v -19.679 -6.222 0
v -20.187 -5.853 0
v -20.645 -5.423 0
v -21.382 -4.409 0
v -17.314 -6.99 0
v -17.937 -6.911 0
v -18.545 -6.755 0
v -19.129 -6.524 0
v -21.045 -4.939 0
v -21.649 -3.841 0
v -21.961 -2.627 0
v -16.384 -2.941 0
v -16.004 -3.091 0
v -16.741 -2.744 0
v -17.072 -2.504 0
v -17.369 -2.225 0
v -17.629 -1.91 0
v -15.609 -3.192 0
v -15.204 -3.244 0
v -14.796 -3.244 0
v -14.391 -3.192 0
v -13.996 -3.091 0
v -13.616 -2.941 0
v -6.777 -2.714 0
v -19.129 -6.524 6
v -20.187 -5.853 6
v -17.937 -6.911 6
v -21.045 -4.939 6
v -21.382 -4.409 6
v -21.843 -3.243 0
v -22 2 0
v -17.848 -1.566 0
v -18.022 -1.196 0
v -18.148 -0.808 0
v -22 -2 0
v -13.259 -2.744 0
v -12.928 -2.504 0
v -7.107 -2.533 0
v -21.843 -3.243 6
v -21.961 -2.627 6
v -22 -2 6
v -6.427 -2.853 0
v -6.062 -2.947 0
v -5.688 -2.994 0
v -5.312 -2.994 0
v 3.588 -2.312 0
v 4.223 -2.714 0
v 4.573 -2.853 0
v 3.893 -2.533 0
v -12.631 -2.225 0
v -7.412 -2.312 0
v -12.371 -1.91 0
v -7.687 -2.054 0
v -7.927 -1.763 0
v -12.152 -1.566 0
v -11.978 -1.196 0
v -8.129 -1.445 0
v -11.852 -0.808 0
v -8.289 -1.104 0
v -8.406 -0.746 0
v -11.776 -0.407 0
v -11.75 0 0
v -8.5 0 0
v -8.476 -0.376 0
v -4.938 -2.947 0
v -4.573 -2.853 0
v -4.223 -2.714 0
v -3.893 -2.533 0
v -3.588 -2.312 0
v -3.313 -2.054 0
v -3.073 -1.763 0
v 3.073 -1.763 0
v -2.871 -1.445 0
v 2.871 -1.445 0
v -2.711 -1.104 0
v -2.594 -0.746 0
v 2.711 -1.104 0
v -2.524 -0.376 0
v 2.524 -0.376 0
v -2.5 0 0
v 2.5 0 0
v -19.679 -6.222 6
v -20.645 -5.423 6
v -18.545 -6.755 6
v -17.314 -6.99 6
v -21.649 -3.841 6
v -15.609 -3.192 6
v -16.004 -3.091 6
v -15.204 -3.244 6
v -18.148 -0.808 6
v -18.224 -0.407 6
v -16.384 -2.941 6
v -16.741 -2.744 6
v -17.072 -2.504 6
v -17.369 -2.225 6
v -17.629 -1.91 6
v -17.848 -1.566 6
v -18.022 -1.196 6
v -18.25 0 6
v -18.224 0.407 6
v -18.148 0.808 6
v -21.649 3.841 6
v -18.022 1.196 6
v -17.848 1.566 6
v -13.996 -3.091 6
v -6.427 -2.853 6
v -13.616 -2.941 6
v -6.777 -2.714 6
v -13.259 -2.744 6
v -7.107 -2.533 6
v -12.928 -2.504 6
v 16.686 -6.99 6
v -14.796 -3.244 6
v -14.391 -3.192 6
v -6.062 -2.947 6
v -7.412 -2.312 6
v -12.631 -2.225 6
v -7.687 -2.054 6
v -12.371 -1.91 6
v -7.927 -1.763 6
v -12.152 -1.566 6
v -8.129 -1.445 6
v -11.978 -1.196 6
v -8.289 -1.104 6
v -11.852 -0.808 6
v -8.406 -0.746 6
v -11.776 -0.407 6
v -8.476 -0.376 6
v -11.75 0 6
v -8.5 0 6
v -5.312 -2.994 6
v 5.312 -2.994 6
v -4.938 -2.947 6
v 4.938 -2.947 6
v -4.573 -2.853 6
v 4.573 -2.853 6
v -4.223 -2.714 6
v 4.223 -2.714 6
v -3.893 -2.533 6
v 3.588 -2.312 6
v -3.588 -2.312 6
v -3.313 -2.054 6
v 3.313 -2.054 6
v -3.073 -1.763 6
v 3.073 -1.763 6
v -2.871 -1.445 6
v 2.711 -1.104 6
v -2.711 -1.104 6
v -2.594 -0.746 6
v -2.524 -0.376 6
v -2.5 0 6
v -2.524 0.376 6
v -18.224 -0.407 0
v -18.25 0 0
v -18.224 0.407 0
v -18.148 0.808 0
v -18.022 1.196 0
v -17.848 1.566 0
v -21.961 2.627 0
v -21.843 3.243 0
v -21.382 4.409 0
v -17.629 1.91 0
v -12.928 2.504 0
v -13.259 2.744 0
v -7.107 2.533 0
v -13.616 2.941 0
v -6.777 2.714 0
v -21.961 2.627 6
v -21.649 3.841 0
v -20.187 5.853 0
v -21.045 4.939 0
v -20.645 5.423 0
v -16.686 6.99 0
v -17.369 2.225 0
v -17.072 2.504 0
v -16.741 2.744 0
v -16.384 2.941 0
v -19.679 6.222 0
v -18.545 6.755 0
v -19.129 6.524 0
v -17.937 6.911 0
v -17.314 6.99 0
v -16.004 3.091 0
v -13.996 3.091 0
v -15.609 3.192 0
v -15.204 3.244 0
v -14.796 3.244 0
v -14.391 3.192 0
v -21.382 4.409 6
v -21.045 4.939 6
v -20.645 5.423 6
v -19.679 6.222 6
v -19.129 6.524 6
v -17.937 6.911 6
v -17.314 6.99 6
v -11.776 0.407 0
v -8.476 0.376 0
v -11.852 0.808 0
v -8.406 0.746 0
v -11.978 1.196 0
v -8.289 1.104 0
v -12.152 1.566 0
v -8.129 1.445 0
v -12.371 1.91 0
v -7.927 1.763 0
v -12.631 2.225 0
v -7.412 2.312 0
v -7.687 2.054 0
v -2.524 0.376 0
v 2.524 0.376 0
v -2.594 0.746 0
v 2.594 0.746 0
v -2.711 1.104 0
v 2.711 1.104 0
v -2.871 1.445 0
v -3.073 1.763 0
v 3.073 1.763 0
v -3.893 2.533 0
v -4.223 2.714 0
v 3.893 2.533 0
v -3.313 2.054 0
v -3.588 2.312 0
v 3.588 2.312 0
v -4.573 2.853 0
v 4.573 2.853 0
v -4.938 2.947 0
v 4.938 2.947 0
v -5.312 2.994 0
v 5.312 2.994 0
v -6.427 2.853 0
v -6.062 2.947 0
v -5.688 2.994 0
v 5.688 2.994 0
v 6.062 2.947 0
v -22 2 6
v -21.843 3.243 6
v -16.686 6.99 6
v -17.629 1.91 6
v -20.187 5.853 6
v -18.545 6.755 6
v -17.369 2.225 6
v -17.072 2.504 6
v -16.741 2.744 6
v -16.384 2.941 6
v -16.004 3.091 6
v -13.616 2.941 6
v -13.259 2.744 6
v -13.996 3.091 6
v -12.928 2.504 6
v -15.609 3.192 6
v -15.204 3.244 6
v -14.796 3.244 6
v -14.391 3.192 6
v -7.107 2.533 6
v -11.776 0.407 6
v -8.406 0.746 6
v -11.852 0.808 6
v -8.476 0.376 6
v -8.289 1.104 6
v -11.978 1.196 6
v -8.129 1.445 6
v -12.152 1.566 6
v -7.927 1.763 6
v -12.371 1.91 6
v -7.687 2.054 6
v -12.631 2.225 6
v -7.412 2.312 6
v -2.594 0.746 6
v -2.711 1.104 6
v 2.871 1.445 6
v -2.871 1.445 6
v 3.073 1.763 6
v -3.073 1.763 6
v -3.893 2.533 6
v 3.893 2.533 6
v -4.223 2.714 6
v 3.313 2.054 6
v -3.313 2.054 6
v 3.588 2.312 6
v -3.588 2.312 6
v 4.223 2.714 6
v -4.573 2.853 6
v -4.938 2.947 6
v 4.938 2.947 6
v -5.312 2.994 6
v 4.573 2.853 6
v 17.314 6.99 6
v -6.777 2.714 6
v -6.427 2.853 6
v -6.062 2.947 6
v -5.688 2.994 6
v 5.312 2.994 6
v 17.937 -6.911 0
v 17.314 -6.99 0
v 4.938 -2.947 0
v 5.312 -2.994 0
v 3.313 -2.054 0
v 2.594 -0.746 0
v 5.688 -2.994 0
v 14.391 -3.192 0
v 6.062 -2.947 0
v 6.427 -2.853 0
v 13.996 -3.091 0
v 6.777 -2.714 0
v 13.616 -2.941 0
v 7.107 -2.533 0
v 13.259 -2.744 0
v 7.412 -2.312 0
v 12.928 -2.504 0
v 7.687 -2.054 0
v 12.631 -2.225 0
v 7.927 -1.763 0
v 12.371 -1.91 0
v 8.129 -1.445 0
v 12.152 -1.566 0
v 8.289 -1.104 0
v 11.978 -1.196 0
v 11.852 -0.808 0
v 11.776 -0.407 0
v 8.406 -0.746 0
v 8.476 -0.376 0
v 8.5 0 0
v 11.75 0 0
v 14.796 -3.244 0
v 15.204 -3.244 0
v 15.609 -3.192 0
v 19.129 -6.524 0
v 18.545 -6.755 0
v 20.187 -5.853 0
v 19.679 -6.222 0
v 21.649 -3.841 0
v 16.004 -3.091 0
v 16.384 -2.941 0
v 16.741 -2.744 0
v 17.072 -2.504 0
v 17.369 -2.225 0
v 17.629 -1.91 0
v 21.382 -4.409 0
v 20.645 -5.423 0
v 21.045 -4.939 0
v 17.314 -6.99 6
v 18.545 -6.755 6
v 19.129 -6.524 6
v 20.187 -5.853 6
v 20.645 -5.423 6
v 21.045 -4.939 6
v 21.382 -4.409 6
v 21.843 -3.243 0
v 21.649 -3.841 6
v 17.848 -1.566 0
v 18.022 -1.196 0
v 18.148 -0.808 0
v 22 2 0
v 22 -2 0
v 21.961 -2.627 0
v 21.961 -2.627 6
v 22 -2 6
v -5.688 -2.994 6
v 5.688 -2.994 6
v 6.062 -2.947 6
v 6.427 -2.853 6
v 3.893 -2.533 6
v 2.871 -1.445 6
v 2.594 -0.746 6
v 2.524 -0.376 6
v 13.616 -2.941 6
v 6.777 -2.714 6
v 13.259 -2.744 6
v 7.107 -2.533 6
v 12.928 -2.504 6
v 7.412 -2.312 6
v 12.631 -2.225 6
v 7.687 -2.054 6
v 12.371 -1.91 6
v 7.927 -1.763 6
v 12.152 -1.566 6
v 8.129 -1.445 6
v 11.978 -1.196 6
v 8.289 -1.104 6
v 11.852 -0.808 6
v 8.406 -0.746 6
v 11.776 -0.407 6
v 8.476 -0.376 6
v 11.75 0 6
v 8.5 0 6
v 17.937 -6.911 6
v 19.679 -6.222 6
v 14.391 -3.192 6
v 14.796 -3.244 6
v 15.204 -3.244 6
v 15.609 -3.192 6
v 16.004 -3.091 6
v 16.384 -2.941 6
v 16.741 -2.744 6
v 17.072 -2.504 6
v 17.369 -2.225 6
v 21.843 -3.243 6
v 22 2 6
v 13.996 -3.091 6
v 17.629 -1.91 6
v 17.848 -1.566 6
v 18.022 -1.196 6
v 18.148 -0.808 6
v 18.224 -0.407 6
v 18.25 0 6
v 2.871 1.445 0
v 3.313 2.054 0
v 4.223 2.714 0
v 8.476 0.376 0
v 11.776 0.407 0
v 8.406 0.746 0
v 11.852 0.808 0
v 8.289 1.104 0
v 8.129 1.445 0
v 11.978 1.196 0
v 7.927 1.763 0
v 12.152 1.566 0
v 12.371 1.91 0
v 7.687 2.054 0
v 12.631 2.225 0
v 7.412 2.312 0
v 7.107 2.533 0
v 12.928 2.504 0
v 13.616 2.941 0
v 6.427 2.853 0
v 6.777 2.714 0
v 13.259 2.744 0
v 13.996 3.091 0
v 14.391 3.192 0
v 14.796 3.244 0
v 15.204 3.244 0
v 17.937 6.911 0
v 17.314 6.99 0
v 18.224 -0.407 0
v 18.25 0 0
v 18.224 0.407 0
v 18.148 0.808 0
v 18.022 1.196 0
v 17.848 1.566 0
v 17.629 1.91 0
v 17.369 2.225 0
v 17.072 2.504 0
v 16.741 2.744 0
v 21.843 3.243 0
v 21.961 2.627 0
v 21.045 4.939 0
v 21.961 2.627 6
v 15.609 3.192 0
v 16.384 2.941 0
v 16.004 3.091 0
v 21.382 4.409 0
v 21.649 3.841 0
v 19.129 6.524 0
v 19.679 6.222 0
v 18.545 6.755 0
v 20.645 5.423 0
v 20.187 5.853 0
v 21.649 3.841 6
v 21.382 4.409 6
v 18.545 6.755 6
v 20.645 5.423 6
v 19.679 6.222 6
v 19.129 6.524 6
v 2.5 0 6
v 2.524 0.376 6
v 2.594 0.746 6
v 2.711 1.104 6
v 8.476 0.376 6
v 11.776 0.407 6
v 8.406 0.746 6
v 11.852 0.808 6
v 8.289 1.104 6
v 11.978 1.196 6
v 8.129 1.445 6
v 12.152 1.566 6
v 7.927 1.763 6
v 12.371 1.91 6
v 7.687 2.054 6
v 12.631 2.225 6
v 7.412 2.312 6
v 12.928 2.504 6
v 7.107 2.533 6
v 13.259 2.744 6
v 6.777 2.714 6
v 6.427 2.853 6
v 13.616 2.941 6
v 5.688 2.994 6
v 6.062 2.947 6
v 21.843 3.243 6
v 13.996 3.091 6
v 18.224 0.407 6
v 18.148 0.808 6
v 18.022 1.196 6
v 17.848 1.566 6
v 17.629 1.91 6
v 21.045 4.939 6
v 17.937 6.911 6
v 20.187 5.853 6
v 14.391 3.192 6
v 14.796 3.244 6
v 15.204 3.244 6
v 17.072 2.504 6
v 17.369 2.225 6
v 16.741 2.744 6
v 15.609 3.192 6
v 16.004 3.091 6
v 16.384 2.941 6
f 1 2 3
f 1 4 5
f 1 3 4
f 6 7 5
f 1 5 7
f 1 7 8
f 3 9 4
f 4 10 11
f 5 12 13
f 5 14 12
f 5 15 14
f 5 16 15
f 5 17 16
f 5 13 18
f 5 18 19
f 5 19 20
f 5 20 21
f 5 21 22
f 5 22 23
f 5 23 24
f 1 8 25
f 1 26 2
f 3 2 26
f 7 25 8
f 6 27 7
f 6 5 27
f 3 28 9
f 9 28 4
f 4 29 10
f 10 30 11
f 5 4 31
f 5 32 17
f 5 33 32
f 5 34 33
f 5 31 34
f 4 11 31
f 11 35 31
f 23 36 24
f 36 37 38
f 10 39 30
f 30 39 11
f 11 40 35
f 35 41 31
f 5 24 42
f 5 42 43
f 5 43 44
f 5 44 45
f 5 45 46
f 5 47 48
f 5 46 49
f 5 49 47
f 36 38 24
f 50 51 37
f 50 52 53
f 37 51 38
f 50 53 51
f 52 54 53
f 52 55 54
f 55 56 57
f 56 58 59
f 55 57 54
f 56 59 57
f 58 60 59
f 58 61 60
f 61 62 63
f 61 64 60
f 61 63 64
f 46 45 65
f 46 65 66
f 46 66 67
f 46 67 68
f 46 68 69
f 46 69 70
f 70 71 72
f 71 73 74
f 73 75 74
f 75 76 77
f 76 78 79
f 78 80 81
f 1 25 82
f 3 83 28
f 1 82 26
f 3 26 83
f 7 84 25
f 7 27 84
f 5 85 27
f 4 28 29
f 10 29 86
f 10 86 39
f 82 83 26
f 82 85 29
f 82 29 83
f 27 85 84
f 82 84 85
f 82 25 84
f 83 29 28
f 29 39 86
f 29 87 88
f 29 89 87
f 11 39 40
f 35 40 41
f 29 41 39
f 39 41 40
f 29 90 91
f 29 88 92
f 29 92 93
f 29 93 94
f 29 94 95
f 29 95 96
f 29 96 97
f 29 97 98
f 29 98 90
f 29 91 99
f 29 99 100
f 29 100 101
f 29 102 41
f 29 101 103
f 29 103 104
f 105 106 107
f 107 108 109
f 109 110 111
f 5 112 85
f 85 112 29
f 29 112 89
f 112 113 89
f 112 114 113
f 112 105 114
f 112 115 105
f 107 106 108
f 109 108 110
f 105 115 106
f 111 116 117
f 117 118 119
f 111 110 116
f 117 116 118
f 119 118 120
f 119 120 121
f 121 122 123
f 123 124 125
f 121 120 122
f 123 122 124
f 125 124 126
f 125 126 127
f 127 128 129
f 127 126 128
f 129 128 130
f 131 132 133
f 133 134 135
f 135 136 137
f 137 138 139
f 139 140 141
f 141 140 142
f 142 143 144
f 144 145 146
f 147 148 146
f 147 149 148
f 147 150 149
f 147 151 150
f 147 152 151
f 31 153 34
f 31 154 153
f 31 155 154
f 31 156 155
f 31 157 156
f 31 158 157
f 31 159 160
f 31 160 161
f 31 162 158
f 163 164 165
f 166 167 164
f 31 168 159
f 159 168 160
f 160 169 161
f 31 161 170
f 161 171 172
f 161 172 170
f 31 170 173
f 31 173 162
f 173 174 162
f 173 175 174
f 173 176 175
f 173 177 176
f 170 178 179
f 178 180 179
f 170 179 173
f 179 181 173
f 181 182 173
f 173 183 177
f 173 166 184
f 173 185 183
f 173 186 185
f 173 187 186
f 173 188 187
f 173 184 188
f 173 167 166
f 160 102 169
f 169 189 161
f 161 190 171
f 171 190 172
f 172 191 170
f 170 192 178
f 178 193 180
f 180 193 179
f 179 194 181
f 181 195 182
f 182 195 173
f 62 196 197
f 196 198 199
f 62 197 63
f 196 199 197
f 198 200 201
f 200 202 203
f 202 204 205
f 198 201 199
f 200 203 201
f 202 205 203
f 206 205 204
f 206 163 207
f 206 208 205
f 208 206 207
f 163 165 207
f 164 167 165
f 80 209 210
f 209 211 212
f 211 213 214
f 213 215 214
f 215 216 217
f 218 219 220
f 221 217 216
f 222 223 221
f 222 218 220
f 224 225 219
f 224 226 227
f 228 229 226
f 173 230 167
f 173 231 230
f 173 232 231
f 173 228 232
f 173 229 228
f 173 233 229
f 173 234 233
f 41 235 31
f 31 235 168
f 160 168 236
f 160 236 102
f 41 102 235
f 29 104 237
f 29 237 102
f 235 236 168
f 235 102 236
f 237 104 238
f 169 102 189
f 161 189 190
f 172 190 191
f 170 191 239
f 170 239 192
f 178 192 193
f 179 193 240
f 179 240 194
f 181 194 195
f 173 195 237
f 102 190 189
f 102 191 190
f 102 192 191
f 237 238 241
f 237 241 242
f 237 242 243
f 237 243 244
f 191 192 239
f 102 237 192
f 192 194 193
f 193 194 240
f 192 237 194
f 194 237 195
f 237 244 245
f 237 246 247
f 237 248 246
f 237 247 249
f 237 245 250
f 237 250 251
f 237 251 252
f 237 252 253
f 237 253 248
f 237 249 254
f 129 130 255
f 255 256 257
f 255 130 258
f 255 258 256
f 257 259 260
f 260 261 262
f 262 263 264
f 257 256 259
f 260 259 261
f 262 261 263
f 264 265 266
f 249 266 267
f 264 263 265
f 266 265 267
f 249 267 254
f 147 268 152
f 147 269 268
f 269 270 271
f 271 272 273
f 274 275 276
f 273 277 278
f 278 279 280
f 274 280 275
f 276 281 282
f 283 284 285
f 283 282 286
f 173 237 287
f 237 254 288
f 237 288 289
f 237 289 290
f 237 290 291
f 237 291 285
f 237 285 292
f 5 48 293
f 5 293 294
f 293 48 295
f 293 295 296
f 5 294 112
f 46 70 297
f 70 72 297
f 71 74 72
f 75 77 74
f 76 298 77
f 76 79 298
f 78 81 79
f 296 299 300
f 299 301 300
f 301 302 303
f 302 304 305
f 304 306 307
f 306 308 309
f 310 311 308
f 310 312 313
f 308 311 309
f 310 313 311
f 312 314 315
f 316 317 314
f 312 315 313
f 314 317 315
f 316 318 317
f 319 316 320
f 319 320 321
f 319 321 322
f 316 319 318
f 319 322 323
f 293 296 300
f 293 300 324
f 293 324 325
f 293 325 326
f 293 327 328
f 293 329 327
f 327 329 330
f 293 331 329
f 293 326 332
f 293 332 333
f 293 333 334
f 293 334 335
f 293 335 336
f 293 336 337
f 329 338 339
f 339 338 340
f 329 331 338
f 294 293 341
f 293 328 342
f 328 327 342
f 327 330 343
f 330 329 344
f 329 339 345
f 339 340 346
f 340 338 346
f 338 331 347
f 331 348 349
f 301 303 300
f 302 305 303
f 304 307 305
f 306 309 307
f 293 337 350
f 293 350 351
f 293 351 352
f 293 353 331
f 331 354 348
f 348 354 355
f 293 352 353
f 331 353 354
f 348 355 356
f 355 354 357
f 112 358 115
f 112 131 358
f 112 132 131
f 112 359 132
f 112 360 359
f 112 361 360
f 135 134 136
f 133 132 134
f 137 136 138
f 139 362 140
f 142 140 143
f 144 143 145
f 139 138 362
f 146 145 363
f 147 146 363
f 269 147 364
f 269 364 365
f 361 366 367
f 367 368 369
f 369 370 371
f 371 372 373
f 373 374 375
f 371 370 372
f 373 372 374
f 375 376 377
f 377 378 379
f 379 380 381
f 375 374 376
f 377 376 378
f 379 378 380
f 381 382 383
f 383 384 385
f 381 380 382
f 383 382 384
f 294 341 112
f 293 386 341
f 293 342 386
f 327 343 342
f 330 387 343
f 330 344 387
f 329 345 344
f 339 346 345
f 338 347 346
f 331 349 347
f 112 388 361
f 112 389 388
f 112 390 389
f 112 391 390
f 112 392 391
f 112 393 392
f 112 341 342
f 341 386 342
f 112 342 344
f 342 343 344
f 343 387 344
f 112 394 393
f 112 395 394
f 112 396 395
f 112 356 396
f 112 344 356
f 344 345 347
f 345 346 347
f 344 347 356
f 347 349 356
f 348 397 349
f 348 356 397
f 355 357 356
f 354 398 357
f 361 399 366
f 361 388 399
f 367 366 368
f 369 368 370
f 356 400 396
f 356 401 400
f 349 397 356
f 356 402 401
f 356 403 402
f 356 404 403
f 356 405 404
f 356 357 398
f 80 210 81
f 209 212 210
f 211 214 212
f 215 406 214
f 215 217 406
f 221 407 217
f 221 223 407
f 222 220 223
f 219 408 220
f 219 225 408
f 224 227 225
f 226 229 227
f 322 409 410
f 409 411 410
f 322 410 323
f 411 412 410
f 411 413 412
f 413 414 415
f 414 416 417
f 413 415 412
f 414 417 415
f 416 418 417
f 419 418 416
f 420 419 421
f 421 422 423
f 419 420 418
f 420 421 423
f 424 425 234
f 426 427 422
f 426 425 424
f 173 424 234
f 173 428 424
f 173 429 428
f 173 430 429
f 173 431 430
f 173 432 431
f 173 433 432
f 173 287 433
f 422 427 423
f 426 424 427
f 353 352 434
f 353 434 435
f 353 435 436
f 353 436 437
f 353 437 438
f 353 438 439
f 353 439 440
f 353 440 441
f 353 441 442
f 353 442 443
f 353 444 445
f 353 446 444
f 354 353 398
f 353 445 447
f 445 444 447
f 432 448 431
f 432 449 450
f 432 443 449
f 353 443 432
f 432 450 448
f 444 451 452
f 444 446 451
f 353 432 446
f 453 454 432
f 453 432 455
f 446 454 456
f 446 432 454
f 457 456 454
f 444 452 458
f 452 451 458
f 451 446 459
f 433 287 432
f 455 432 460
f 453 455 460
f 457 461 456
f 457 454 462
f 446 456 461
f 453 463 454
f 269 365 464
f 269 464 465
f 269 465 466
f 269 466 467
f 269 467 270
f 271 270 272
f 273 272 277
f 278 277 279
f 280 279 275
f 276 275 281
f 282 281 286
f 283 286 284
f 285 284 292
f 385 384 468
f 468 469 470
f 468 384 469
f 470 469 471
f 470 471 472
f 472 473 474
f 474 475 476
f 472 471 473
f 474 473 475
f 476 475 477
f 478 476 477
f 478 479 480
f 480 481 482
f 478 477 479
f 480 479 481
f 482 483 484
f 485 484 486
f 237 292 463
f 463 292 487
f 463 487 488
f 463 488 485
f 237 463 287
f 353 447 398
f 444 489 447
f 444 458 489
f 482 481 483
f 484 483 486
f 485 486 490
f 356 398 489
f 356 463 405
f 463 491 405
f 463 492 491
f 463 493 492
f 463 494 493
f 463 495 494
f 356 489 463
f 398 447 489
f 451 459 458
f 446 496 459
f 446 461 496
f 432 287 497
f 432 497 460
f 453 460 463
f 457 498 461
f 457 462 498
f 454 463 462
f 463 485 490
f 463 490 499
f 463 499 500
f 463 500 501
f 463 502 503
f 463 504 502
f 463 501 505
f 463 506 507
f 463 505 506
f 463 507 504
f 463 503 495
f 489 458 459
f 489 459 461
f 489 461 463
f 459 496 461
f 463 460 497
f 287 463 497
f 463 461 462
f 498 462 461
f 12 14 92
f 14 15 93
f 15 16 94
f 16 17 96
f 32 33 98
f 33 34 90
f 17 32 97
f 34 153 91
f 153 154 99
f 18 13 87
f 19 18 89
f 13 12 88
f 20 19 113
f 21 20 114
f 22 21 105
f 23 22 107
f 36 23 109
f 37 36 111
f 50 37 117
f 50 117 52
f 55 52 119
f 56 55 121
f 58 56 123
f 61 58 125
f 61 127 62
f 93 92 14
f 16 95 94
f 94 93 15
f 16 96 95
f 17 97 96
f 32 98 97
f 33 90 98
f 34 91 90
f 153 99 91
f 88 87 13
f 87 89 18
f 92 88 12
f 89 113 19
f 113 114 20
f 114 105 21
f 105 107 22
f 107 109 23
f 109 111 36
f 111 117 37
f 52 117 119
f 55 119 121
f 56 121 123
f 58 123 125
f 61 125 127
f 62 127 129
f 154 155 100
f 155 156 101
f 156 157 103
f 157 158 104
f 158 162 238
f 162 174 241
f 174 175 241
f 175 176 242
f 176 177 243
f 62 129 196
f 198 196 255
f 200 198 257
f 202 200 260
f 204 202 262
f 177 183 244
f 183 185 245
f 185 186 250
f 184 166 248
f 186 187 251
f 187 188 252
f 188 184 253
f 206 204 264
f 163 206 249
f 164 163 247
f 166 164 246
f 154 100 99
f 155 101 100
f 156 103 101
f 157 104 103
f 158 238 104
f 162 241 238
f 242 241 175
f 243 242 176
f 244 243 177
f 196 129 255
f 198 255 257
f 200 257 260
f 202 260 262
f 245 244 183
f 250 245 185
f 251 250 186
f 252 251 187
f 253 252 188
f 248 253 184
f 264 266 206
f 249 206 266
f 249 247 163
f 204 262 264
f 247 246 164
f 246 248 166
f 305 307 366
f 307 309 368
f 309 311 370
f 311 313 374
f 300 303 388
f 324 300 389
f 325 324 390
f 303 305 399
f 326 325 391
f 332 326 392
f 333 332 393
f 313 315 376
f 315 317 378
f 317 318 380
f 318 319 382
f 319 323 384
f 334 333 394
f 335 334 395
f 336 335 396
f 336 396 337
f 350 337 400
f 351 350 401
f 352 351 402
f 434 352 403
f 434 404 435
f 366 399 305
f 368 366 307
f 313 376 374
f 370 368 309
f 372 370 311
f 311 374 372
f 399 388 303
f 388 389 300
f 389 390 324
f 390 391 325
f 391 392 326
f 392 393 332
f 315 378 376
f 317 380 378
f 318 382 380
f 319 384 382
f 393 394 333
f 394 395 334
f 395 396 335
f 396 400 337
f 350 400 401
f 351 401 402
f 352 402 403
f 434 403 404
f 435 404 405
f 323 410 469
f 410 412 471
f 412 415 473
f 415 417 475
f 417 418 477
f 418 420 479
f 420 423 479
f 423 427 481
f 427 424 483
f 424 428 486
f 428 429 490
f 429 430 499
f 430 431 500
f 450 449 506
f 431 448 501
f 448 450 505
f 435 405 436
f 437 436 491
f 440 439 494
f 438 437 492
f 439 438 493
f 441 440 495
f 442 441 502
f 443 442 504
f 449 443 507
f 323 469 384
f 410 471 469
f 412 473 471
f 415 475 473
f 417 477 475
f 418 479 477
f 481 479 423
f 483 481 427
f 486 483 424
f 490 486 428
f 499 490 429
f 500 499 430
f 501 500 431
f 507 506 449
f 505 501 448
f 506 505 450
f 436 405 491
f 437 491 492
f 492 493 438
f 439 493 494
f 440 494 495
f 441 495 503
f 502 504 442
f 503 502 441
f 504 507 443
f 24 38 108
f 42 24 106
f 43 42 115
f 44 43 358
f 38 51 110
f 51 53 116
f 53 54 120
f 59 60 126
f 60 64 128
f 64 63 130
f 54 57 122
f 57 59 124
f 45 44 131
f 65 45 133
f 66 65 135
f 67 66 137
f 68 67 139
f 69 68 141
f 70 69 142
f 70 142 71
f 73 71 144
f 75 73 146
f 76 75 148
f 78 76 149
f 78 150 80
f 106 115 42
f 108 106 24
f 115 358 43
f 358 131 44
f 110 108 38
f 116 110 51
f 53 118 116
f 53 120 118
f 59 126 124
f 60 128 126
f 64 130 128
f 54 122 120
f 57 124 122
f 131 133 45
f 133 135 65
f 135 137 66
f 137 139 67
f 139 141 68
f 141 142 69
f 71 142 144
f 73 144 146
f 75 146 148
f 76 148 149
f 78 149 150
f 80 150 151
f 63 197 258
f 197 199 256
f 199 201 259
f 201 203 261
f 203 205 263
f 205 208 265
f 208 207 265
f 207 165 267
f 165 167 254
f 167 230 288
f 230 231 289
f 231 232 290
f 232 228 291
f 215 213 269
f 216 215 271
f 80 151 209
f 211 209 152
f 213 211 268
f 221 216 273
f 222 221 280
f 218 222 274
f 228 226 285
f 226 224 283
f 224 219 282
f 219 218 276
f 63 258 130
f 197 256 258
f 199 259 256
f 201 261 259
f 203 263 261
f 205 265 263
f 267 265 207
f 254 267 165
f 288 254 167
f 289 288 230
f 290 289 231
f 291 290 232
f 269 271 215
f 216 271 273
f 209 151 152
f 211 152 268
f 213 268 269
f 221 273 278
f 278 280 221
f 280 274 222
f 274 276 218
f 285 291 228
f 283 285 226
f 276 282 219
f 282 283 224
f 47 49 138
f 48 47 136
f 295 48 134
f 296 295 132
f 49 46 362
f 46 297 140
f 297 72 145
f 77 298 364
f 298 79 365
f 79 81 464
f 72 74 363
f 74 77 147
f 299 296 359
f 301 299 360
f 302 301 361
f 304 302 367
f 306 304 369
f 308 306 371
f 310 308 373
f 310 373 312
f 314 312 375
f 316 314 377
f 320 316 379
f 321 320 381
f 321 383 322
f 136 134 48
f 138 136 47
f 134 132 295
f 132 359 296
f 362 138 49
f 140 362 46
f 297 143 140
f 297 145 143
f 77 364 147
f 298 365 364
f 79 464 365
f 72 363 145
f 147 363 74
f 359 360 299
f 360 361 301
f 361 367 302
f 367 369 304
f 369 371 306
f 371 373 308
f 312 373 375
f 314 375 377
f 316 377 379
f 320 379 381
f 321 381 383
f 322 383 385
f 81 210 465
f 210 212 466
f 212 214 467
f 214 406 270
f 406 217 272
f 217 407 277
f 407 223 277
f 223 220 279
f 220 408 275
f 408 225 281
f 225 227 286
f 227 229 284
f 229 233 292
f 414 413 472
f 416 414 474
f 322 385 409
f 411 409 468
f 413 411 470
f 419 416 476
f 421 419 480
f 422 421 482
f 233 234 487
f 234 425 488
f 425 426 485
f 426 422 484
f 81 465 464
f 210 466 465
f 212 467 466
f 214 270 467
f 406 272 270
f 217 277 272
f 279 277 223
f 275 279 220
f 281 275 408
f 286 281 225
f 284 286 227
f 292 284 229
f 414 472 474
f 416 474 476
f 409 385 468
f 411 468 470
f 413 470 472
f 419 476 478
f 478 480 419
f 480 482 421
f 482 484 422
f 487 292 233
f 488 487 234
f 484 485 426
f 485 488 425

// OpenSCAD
$fn = 50;

difference() {
	union() {
		hull() {
			translate(v = [-17.0, 2.0, 0]) {
				cylinder(h = 6, r = 5);
			}
			translate(v = [17.0, 2.0, 0]) {
				cylinder(h = 6, r = 5);
			}
			translate(v = [-17.0, -2.0, 0]) {
				cylinder(h = 6, r = 5);
			}
			translate(v = [17.0, -2.0, 0]) {
				cylinder(h = 6, r = 5);
			}
		}
	}
	union() {
		translate(v = [-15.0, 0.0, 0]) {
			cylinder(h = 6, r = 3.25);
		}
		translate(v = [15.0, 0.0, 0]) {
			cylinder(h = 6, r = 3.25);
		}
		translate(v = [-5.5, 0, 0.0]) {
			cylinder(h = 6, r = 3.0);
		}
		translate(v = [5.5, 0, 0.0]) {
			cylinder(h = 6, r = 3.0);
		}
	}
}
